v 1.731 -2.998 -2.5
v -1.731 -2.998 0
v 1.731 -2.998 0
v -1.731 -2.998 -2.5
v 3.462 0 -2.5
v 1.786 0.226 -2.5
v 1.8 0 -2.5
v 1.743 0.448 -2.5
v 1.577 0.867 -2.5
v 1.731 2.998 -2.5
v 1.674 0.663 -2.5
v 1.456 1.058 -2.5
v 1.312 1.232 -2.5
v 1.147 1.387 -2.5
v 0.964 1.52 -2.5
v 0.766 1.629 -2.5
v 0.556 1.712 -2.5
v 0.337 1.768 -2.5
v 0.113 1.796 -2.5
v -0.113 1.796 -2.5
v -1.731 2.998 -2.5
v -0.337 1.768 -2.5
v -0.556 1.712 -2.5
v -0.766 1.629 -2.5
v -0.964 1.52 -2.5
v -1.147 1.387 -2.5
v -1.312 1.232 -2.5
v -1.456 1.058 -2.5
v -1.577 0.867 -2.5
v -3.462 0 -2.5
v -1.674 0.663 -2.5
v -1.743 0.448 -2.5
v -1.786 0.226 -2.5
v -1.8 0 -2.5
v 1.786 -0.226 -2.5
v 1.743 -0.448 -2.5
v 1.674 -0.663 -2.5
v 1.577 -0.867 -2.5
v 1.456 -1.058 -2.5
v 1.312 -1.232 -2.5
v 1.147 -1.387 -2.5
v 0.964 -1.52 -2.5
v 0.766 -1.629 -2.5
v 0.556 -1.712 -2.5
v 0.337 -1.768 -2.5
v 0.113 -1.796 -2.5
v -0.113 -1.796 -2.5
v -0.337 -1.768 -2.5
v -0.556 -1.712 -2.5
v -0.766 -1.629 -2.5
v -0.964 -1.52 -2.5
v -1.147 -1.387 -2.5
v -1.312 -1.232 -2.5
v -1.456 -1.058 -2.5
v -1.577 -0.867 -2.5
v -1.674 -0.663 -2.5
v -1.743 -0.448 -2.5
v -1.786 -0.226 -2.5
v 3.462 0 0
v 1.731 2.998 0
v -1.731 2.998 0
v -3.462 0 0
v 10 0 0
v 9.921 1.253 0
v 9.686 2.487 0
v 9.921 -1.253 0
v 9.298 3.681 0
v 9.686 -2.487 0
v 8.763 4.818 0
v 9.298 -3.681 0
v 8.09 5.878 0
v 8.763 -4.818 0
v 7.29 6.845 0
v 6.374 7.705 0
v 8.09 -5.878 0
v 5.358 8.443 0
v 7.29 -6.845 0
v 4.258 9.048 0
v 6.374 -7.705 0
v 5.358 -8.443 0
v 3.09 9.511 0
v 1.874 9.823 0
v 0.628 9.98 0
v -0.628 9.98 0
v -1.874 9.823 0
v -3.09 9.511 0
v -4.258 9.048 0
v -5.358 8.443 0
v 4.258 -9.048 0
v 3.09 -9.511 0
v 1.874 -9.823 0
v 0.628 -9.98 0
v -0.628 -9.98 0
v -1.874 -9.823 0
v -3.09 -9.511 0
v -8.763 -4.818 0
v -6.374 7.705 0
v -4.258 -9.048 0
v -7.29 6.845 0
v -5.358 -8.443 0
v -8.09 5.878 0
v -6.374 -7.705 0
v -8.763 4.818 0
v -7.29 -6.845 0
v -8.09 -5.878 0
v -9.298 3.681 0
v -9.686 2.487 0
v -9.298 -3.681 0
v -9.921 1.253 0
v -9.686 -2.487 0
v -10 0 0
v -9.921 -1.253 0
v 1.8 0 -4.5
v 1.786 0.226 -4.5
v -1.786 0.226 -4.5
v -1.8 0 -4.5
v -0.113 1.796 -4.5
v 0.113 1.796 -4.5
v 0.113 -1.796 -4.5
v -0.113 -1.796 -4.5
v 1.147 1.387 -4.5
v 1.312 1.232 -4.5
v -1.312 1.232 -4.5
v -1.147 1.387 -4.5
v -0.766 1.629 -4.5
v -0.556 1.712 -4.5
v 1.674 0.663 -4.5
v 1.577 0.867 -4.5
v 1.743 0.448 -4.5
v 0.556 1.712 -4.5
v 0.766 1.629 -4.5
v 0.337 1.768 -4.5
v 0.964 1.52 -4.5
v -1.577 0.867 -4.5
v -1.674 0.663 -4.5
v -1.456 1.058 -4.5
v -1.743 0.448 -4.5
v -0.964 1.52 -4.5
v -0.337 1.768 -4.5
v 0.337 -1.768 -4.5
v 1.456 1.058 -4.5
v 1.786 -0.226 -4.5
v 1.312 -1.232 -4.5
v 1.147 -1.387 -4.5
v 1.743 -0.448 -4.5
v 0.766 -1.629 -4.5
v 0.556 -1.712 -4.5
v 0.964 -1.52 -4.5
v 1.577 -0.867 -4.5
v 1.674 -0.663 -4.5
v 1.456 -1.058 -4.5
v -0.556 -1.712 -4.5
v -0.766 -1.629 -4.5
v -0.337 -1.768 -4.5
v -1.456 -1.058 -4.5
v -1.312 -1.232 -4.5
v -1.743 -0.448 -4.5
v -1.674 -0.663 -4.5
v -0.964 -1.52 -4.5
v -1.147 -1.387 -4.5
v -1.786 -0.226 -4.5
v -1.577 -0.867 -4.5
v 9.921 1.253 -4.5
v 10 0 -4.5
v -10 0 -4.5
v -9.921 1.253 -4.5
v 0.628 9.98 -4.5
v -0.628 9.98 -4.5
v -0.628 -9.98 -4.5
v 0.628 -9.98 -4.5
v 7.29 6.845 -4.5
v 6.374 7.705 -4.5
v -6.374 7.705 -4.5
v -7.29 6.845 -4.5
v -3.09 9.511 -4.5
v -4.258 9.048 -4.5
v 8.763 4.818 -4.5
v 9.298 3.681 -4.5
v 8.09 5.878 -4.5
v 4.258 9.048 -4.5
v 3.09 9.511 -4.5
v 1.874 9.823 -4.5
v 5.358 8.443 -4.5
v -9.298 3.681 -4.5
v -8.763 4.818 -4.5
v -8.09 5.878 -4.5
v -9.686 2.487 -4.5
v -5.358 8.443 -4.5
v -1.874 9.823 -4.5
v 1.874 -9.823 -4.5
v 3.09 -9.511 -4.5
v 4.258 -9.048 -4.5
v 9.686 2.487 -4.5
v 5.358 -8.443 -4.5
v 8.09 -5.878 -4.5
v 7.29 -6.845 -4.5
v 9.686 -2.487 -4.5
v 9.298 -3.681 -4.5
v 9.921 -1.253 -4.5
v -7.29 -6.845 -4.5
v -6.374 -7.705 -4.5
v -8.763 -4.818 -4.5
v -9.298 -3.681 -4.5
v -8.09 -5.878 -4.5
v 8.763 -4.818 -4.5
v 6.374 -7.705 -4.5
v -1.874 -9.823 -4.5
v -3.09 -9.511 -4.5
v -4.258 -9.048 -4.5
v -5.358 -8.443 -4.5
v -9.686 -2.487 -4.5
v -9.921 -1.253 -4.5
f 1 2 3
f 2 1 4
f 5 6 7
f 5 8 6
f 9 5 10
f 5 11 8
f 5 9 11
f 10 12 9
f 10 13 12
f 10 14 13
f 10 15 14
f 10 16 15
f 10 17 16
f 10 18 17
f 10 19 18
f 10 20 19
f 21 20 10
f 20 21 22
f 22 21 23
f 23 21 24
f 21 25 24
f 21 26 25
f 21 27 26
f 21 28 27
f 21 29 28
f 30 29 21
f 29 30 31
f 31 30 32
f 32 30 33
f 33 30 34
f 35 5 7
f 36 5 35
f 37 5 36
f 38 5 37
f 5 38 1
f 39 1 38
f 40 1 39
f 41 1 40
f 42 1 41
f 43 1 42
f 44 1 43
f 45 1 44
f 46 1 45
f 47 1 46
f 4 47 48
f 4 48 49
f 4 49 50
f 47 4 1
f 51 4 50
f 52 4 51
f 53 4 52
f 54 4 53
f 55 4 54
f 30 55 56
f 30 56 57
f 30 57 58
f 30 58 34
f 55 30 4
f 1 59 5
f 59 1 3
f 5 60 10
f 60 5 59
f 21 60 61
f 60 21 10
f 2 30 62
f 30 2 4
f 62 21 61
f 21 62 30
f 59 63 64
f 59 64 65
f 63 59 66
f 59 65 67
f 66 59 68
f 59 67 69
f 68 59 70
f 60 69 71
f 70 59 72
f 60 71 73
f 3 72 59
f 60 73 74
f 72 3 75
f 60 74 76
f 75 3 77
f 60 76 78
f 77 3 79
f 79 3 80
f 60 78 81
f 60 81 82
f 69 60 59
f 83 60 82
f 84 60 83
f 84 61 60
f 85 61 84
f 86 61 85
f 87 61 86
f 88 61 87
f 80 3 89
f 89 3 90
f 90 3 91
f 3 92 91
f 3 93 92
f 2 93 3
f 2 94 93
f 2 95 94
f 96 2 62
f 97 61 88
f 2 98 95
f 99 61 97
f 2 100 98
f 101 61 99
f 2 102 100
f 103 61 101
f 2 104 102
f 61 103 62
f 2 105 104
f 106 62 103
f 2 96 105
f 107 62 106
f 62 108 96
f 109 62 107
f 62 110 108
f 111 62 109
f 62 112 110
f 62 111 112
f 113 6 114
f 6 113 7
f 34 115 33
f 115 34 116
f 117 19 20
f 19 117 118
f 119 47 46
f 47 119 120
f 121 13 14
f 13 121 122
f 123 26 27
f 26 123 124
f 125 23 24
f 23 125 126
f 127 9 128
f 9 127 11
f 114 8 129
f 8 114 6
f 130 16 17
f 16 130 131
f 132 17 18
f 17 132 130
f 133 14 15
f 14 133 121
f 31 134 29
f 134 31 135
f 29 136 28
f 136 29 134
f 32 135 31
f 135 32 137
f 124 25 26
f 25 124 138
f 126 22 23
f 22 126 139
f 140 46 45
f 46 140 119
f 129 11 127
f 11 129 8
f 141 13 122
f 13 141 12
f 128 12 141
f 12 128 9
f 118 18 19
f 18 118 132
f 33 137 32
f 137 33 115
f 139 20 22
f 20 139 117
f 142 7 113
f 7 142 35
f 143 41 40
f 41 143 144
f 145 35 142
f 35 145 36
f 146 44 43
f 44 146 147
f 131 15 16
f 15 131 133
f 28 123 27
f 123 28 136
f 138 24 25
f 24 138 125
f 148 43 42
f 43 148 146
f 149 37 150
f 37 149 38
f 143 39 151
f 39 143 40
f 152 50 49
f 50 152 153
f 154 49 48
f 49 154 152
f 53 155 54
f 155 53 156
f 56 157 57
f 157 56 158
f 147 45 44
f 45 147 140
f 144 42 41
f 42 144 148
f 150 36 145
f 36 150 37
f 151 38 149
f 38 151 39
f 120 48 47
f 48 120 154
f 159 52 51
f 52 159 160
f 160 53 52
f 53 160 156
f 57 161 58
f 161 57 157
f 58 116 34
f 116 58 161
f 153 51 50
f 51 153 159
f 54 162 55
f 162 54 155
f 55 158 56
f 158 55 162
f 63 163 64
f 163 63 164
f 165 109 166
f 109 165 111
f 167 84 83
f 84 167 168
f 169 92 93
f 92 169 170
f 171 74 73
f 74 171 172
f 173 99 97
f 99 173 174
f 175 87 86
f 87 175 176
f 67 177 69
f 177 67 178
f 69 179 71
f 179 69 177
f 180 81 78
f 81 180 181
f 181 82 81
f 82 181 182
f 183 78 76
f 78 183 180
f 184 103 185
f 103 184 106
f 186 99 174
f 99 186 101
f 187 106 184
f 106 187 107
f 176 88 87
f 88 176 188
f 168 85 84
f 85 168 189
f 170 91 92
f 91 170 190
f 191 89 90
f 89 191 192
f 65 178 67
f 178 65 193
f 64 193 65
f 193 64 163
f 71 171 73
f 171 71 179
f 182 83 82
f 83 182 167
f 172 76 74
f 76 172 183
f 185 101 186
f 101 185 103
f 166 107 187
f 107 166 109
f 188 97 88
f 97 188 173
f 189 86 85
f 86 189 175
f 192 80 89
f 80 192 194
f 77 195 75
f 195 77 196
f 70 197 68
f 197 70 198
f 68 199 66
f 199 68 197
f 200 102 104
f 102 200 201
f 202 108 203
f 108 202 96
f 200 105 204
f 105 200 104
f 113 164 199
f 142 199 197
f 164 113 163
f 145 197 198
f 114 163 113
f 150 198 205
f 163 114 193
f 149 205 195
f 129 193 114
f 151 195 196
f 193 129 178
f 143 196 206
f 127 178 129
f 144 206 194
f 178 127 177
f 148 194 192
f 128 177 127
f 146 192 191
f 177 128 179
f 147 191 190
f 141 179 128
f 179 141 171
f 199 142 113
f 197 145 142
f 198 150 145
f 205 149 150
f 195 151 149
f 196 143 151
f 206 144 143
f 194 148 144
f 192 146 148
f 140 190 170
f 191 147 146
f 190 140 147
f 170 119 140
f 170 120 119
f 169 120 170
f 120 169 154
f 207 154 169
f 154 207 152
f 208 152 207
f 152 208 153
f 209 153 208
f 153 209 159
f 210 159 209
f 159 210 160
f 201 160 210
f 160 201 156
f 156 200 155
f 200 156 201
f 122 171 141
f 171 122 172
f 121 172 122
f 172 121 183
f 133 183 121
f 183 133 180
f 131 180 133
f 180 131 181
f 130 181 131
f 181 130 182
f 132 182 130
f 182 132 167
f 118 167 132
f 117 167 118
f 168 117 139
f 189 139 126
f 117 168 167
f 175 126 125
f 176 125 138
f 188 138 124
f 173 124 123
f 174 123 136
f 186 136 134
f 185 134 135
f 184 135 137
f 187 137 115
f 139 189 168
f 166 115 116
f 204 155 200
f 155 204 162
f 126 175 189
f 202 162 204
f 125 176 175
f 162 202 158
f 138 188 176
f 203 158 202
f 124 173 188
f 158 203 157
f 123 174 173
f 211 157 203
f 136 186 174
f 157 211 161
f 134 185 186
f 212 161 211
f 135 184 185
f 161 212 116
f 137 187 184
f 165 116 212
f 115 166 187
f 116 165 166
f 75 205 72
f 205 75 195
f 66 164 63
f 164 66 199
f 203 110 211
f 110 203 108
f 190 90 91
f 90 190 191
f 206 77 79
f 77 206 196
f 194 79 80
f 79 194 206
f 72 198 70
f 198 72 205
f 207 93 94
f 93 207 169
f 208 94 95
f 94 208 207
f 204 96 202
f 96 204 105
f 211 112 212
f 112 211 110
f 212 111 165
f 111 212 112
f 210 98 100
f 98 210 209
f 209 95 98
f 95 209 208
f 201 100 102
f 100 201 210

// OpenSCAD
$fn = 50;

difference() {
	union() {
		translate(v = [0, 0, -4.5]) {
			cylinder(h = 4.5, r = 10.0);
		}
	}
	union() {
		translate(v = [0, 0, 0]) {
			rotate(a = [0, 0, 0]) {
				difference() {
					union() {
						translate(v = [0, 0, -2.5]) {
							linear_extrude(height = 2.5) {
								polygon(points = [[3.4619999999999997, 0.0], [1.7310000000000003, 2.9981799479017264], [-1.7309999999999992, 2.9981799479017264], [-3.4619999999999997, 4.2397272186481365e-16], [-1.7310000000000014, -2.998179947901726], [1.7309999999999977, -2.9981799479017277]]);
							}
						}
					}
					union();
				}
			}
		}
		#translate(v = [0, 0, -100.0]) {
			cylinder(h = 200, r = 1.8);
		}
	}
}
